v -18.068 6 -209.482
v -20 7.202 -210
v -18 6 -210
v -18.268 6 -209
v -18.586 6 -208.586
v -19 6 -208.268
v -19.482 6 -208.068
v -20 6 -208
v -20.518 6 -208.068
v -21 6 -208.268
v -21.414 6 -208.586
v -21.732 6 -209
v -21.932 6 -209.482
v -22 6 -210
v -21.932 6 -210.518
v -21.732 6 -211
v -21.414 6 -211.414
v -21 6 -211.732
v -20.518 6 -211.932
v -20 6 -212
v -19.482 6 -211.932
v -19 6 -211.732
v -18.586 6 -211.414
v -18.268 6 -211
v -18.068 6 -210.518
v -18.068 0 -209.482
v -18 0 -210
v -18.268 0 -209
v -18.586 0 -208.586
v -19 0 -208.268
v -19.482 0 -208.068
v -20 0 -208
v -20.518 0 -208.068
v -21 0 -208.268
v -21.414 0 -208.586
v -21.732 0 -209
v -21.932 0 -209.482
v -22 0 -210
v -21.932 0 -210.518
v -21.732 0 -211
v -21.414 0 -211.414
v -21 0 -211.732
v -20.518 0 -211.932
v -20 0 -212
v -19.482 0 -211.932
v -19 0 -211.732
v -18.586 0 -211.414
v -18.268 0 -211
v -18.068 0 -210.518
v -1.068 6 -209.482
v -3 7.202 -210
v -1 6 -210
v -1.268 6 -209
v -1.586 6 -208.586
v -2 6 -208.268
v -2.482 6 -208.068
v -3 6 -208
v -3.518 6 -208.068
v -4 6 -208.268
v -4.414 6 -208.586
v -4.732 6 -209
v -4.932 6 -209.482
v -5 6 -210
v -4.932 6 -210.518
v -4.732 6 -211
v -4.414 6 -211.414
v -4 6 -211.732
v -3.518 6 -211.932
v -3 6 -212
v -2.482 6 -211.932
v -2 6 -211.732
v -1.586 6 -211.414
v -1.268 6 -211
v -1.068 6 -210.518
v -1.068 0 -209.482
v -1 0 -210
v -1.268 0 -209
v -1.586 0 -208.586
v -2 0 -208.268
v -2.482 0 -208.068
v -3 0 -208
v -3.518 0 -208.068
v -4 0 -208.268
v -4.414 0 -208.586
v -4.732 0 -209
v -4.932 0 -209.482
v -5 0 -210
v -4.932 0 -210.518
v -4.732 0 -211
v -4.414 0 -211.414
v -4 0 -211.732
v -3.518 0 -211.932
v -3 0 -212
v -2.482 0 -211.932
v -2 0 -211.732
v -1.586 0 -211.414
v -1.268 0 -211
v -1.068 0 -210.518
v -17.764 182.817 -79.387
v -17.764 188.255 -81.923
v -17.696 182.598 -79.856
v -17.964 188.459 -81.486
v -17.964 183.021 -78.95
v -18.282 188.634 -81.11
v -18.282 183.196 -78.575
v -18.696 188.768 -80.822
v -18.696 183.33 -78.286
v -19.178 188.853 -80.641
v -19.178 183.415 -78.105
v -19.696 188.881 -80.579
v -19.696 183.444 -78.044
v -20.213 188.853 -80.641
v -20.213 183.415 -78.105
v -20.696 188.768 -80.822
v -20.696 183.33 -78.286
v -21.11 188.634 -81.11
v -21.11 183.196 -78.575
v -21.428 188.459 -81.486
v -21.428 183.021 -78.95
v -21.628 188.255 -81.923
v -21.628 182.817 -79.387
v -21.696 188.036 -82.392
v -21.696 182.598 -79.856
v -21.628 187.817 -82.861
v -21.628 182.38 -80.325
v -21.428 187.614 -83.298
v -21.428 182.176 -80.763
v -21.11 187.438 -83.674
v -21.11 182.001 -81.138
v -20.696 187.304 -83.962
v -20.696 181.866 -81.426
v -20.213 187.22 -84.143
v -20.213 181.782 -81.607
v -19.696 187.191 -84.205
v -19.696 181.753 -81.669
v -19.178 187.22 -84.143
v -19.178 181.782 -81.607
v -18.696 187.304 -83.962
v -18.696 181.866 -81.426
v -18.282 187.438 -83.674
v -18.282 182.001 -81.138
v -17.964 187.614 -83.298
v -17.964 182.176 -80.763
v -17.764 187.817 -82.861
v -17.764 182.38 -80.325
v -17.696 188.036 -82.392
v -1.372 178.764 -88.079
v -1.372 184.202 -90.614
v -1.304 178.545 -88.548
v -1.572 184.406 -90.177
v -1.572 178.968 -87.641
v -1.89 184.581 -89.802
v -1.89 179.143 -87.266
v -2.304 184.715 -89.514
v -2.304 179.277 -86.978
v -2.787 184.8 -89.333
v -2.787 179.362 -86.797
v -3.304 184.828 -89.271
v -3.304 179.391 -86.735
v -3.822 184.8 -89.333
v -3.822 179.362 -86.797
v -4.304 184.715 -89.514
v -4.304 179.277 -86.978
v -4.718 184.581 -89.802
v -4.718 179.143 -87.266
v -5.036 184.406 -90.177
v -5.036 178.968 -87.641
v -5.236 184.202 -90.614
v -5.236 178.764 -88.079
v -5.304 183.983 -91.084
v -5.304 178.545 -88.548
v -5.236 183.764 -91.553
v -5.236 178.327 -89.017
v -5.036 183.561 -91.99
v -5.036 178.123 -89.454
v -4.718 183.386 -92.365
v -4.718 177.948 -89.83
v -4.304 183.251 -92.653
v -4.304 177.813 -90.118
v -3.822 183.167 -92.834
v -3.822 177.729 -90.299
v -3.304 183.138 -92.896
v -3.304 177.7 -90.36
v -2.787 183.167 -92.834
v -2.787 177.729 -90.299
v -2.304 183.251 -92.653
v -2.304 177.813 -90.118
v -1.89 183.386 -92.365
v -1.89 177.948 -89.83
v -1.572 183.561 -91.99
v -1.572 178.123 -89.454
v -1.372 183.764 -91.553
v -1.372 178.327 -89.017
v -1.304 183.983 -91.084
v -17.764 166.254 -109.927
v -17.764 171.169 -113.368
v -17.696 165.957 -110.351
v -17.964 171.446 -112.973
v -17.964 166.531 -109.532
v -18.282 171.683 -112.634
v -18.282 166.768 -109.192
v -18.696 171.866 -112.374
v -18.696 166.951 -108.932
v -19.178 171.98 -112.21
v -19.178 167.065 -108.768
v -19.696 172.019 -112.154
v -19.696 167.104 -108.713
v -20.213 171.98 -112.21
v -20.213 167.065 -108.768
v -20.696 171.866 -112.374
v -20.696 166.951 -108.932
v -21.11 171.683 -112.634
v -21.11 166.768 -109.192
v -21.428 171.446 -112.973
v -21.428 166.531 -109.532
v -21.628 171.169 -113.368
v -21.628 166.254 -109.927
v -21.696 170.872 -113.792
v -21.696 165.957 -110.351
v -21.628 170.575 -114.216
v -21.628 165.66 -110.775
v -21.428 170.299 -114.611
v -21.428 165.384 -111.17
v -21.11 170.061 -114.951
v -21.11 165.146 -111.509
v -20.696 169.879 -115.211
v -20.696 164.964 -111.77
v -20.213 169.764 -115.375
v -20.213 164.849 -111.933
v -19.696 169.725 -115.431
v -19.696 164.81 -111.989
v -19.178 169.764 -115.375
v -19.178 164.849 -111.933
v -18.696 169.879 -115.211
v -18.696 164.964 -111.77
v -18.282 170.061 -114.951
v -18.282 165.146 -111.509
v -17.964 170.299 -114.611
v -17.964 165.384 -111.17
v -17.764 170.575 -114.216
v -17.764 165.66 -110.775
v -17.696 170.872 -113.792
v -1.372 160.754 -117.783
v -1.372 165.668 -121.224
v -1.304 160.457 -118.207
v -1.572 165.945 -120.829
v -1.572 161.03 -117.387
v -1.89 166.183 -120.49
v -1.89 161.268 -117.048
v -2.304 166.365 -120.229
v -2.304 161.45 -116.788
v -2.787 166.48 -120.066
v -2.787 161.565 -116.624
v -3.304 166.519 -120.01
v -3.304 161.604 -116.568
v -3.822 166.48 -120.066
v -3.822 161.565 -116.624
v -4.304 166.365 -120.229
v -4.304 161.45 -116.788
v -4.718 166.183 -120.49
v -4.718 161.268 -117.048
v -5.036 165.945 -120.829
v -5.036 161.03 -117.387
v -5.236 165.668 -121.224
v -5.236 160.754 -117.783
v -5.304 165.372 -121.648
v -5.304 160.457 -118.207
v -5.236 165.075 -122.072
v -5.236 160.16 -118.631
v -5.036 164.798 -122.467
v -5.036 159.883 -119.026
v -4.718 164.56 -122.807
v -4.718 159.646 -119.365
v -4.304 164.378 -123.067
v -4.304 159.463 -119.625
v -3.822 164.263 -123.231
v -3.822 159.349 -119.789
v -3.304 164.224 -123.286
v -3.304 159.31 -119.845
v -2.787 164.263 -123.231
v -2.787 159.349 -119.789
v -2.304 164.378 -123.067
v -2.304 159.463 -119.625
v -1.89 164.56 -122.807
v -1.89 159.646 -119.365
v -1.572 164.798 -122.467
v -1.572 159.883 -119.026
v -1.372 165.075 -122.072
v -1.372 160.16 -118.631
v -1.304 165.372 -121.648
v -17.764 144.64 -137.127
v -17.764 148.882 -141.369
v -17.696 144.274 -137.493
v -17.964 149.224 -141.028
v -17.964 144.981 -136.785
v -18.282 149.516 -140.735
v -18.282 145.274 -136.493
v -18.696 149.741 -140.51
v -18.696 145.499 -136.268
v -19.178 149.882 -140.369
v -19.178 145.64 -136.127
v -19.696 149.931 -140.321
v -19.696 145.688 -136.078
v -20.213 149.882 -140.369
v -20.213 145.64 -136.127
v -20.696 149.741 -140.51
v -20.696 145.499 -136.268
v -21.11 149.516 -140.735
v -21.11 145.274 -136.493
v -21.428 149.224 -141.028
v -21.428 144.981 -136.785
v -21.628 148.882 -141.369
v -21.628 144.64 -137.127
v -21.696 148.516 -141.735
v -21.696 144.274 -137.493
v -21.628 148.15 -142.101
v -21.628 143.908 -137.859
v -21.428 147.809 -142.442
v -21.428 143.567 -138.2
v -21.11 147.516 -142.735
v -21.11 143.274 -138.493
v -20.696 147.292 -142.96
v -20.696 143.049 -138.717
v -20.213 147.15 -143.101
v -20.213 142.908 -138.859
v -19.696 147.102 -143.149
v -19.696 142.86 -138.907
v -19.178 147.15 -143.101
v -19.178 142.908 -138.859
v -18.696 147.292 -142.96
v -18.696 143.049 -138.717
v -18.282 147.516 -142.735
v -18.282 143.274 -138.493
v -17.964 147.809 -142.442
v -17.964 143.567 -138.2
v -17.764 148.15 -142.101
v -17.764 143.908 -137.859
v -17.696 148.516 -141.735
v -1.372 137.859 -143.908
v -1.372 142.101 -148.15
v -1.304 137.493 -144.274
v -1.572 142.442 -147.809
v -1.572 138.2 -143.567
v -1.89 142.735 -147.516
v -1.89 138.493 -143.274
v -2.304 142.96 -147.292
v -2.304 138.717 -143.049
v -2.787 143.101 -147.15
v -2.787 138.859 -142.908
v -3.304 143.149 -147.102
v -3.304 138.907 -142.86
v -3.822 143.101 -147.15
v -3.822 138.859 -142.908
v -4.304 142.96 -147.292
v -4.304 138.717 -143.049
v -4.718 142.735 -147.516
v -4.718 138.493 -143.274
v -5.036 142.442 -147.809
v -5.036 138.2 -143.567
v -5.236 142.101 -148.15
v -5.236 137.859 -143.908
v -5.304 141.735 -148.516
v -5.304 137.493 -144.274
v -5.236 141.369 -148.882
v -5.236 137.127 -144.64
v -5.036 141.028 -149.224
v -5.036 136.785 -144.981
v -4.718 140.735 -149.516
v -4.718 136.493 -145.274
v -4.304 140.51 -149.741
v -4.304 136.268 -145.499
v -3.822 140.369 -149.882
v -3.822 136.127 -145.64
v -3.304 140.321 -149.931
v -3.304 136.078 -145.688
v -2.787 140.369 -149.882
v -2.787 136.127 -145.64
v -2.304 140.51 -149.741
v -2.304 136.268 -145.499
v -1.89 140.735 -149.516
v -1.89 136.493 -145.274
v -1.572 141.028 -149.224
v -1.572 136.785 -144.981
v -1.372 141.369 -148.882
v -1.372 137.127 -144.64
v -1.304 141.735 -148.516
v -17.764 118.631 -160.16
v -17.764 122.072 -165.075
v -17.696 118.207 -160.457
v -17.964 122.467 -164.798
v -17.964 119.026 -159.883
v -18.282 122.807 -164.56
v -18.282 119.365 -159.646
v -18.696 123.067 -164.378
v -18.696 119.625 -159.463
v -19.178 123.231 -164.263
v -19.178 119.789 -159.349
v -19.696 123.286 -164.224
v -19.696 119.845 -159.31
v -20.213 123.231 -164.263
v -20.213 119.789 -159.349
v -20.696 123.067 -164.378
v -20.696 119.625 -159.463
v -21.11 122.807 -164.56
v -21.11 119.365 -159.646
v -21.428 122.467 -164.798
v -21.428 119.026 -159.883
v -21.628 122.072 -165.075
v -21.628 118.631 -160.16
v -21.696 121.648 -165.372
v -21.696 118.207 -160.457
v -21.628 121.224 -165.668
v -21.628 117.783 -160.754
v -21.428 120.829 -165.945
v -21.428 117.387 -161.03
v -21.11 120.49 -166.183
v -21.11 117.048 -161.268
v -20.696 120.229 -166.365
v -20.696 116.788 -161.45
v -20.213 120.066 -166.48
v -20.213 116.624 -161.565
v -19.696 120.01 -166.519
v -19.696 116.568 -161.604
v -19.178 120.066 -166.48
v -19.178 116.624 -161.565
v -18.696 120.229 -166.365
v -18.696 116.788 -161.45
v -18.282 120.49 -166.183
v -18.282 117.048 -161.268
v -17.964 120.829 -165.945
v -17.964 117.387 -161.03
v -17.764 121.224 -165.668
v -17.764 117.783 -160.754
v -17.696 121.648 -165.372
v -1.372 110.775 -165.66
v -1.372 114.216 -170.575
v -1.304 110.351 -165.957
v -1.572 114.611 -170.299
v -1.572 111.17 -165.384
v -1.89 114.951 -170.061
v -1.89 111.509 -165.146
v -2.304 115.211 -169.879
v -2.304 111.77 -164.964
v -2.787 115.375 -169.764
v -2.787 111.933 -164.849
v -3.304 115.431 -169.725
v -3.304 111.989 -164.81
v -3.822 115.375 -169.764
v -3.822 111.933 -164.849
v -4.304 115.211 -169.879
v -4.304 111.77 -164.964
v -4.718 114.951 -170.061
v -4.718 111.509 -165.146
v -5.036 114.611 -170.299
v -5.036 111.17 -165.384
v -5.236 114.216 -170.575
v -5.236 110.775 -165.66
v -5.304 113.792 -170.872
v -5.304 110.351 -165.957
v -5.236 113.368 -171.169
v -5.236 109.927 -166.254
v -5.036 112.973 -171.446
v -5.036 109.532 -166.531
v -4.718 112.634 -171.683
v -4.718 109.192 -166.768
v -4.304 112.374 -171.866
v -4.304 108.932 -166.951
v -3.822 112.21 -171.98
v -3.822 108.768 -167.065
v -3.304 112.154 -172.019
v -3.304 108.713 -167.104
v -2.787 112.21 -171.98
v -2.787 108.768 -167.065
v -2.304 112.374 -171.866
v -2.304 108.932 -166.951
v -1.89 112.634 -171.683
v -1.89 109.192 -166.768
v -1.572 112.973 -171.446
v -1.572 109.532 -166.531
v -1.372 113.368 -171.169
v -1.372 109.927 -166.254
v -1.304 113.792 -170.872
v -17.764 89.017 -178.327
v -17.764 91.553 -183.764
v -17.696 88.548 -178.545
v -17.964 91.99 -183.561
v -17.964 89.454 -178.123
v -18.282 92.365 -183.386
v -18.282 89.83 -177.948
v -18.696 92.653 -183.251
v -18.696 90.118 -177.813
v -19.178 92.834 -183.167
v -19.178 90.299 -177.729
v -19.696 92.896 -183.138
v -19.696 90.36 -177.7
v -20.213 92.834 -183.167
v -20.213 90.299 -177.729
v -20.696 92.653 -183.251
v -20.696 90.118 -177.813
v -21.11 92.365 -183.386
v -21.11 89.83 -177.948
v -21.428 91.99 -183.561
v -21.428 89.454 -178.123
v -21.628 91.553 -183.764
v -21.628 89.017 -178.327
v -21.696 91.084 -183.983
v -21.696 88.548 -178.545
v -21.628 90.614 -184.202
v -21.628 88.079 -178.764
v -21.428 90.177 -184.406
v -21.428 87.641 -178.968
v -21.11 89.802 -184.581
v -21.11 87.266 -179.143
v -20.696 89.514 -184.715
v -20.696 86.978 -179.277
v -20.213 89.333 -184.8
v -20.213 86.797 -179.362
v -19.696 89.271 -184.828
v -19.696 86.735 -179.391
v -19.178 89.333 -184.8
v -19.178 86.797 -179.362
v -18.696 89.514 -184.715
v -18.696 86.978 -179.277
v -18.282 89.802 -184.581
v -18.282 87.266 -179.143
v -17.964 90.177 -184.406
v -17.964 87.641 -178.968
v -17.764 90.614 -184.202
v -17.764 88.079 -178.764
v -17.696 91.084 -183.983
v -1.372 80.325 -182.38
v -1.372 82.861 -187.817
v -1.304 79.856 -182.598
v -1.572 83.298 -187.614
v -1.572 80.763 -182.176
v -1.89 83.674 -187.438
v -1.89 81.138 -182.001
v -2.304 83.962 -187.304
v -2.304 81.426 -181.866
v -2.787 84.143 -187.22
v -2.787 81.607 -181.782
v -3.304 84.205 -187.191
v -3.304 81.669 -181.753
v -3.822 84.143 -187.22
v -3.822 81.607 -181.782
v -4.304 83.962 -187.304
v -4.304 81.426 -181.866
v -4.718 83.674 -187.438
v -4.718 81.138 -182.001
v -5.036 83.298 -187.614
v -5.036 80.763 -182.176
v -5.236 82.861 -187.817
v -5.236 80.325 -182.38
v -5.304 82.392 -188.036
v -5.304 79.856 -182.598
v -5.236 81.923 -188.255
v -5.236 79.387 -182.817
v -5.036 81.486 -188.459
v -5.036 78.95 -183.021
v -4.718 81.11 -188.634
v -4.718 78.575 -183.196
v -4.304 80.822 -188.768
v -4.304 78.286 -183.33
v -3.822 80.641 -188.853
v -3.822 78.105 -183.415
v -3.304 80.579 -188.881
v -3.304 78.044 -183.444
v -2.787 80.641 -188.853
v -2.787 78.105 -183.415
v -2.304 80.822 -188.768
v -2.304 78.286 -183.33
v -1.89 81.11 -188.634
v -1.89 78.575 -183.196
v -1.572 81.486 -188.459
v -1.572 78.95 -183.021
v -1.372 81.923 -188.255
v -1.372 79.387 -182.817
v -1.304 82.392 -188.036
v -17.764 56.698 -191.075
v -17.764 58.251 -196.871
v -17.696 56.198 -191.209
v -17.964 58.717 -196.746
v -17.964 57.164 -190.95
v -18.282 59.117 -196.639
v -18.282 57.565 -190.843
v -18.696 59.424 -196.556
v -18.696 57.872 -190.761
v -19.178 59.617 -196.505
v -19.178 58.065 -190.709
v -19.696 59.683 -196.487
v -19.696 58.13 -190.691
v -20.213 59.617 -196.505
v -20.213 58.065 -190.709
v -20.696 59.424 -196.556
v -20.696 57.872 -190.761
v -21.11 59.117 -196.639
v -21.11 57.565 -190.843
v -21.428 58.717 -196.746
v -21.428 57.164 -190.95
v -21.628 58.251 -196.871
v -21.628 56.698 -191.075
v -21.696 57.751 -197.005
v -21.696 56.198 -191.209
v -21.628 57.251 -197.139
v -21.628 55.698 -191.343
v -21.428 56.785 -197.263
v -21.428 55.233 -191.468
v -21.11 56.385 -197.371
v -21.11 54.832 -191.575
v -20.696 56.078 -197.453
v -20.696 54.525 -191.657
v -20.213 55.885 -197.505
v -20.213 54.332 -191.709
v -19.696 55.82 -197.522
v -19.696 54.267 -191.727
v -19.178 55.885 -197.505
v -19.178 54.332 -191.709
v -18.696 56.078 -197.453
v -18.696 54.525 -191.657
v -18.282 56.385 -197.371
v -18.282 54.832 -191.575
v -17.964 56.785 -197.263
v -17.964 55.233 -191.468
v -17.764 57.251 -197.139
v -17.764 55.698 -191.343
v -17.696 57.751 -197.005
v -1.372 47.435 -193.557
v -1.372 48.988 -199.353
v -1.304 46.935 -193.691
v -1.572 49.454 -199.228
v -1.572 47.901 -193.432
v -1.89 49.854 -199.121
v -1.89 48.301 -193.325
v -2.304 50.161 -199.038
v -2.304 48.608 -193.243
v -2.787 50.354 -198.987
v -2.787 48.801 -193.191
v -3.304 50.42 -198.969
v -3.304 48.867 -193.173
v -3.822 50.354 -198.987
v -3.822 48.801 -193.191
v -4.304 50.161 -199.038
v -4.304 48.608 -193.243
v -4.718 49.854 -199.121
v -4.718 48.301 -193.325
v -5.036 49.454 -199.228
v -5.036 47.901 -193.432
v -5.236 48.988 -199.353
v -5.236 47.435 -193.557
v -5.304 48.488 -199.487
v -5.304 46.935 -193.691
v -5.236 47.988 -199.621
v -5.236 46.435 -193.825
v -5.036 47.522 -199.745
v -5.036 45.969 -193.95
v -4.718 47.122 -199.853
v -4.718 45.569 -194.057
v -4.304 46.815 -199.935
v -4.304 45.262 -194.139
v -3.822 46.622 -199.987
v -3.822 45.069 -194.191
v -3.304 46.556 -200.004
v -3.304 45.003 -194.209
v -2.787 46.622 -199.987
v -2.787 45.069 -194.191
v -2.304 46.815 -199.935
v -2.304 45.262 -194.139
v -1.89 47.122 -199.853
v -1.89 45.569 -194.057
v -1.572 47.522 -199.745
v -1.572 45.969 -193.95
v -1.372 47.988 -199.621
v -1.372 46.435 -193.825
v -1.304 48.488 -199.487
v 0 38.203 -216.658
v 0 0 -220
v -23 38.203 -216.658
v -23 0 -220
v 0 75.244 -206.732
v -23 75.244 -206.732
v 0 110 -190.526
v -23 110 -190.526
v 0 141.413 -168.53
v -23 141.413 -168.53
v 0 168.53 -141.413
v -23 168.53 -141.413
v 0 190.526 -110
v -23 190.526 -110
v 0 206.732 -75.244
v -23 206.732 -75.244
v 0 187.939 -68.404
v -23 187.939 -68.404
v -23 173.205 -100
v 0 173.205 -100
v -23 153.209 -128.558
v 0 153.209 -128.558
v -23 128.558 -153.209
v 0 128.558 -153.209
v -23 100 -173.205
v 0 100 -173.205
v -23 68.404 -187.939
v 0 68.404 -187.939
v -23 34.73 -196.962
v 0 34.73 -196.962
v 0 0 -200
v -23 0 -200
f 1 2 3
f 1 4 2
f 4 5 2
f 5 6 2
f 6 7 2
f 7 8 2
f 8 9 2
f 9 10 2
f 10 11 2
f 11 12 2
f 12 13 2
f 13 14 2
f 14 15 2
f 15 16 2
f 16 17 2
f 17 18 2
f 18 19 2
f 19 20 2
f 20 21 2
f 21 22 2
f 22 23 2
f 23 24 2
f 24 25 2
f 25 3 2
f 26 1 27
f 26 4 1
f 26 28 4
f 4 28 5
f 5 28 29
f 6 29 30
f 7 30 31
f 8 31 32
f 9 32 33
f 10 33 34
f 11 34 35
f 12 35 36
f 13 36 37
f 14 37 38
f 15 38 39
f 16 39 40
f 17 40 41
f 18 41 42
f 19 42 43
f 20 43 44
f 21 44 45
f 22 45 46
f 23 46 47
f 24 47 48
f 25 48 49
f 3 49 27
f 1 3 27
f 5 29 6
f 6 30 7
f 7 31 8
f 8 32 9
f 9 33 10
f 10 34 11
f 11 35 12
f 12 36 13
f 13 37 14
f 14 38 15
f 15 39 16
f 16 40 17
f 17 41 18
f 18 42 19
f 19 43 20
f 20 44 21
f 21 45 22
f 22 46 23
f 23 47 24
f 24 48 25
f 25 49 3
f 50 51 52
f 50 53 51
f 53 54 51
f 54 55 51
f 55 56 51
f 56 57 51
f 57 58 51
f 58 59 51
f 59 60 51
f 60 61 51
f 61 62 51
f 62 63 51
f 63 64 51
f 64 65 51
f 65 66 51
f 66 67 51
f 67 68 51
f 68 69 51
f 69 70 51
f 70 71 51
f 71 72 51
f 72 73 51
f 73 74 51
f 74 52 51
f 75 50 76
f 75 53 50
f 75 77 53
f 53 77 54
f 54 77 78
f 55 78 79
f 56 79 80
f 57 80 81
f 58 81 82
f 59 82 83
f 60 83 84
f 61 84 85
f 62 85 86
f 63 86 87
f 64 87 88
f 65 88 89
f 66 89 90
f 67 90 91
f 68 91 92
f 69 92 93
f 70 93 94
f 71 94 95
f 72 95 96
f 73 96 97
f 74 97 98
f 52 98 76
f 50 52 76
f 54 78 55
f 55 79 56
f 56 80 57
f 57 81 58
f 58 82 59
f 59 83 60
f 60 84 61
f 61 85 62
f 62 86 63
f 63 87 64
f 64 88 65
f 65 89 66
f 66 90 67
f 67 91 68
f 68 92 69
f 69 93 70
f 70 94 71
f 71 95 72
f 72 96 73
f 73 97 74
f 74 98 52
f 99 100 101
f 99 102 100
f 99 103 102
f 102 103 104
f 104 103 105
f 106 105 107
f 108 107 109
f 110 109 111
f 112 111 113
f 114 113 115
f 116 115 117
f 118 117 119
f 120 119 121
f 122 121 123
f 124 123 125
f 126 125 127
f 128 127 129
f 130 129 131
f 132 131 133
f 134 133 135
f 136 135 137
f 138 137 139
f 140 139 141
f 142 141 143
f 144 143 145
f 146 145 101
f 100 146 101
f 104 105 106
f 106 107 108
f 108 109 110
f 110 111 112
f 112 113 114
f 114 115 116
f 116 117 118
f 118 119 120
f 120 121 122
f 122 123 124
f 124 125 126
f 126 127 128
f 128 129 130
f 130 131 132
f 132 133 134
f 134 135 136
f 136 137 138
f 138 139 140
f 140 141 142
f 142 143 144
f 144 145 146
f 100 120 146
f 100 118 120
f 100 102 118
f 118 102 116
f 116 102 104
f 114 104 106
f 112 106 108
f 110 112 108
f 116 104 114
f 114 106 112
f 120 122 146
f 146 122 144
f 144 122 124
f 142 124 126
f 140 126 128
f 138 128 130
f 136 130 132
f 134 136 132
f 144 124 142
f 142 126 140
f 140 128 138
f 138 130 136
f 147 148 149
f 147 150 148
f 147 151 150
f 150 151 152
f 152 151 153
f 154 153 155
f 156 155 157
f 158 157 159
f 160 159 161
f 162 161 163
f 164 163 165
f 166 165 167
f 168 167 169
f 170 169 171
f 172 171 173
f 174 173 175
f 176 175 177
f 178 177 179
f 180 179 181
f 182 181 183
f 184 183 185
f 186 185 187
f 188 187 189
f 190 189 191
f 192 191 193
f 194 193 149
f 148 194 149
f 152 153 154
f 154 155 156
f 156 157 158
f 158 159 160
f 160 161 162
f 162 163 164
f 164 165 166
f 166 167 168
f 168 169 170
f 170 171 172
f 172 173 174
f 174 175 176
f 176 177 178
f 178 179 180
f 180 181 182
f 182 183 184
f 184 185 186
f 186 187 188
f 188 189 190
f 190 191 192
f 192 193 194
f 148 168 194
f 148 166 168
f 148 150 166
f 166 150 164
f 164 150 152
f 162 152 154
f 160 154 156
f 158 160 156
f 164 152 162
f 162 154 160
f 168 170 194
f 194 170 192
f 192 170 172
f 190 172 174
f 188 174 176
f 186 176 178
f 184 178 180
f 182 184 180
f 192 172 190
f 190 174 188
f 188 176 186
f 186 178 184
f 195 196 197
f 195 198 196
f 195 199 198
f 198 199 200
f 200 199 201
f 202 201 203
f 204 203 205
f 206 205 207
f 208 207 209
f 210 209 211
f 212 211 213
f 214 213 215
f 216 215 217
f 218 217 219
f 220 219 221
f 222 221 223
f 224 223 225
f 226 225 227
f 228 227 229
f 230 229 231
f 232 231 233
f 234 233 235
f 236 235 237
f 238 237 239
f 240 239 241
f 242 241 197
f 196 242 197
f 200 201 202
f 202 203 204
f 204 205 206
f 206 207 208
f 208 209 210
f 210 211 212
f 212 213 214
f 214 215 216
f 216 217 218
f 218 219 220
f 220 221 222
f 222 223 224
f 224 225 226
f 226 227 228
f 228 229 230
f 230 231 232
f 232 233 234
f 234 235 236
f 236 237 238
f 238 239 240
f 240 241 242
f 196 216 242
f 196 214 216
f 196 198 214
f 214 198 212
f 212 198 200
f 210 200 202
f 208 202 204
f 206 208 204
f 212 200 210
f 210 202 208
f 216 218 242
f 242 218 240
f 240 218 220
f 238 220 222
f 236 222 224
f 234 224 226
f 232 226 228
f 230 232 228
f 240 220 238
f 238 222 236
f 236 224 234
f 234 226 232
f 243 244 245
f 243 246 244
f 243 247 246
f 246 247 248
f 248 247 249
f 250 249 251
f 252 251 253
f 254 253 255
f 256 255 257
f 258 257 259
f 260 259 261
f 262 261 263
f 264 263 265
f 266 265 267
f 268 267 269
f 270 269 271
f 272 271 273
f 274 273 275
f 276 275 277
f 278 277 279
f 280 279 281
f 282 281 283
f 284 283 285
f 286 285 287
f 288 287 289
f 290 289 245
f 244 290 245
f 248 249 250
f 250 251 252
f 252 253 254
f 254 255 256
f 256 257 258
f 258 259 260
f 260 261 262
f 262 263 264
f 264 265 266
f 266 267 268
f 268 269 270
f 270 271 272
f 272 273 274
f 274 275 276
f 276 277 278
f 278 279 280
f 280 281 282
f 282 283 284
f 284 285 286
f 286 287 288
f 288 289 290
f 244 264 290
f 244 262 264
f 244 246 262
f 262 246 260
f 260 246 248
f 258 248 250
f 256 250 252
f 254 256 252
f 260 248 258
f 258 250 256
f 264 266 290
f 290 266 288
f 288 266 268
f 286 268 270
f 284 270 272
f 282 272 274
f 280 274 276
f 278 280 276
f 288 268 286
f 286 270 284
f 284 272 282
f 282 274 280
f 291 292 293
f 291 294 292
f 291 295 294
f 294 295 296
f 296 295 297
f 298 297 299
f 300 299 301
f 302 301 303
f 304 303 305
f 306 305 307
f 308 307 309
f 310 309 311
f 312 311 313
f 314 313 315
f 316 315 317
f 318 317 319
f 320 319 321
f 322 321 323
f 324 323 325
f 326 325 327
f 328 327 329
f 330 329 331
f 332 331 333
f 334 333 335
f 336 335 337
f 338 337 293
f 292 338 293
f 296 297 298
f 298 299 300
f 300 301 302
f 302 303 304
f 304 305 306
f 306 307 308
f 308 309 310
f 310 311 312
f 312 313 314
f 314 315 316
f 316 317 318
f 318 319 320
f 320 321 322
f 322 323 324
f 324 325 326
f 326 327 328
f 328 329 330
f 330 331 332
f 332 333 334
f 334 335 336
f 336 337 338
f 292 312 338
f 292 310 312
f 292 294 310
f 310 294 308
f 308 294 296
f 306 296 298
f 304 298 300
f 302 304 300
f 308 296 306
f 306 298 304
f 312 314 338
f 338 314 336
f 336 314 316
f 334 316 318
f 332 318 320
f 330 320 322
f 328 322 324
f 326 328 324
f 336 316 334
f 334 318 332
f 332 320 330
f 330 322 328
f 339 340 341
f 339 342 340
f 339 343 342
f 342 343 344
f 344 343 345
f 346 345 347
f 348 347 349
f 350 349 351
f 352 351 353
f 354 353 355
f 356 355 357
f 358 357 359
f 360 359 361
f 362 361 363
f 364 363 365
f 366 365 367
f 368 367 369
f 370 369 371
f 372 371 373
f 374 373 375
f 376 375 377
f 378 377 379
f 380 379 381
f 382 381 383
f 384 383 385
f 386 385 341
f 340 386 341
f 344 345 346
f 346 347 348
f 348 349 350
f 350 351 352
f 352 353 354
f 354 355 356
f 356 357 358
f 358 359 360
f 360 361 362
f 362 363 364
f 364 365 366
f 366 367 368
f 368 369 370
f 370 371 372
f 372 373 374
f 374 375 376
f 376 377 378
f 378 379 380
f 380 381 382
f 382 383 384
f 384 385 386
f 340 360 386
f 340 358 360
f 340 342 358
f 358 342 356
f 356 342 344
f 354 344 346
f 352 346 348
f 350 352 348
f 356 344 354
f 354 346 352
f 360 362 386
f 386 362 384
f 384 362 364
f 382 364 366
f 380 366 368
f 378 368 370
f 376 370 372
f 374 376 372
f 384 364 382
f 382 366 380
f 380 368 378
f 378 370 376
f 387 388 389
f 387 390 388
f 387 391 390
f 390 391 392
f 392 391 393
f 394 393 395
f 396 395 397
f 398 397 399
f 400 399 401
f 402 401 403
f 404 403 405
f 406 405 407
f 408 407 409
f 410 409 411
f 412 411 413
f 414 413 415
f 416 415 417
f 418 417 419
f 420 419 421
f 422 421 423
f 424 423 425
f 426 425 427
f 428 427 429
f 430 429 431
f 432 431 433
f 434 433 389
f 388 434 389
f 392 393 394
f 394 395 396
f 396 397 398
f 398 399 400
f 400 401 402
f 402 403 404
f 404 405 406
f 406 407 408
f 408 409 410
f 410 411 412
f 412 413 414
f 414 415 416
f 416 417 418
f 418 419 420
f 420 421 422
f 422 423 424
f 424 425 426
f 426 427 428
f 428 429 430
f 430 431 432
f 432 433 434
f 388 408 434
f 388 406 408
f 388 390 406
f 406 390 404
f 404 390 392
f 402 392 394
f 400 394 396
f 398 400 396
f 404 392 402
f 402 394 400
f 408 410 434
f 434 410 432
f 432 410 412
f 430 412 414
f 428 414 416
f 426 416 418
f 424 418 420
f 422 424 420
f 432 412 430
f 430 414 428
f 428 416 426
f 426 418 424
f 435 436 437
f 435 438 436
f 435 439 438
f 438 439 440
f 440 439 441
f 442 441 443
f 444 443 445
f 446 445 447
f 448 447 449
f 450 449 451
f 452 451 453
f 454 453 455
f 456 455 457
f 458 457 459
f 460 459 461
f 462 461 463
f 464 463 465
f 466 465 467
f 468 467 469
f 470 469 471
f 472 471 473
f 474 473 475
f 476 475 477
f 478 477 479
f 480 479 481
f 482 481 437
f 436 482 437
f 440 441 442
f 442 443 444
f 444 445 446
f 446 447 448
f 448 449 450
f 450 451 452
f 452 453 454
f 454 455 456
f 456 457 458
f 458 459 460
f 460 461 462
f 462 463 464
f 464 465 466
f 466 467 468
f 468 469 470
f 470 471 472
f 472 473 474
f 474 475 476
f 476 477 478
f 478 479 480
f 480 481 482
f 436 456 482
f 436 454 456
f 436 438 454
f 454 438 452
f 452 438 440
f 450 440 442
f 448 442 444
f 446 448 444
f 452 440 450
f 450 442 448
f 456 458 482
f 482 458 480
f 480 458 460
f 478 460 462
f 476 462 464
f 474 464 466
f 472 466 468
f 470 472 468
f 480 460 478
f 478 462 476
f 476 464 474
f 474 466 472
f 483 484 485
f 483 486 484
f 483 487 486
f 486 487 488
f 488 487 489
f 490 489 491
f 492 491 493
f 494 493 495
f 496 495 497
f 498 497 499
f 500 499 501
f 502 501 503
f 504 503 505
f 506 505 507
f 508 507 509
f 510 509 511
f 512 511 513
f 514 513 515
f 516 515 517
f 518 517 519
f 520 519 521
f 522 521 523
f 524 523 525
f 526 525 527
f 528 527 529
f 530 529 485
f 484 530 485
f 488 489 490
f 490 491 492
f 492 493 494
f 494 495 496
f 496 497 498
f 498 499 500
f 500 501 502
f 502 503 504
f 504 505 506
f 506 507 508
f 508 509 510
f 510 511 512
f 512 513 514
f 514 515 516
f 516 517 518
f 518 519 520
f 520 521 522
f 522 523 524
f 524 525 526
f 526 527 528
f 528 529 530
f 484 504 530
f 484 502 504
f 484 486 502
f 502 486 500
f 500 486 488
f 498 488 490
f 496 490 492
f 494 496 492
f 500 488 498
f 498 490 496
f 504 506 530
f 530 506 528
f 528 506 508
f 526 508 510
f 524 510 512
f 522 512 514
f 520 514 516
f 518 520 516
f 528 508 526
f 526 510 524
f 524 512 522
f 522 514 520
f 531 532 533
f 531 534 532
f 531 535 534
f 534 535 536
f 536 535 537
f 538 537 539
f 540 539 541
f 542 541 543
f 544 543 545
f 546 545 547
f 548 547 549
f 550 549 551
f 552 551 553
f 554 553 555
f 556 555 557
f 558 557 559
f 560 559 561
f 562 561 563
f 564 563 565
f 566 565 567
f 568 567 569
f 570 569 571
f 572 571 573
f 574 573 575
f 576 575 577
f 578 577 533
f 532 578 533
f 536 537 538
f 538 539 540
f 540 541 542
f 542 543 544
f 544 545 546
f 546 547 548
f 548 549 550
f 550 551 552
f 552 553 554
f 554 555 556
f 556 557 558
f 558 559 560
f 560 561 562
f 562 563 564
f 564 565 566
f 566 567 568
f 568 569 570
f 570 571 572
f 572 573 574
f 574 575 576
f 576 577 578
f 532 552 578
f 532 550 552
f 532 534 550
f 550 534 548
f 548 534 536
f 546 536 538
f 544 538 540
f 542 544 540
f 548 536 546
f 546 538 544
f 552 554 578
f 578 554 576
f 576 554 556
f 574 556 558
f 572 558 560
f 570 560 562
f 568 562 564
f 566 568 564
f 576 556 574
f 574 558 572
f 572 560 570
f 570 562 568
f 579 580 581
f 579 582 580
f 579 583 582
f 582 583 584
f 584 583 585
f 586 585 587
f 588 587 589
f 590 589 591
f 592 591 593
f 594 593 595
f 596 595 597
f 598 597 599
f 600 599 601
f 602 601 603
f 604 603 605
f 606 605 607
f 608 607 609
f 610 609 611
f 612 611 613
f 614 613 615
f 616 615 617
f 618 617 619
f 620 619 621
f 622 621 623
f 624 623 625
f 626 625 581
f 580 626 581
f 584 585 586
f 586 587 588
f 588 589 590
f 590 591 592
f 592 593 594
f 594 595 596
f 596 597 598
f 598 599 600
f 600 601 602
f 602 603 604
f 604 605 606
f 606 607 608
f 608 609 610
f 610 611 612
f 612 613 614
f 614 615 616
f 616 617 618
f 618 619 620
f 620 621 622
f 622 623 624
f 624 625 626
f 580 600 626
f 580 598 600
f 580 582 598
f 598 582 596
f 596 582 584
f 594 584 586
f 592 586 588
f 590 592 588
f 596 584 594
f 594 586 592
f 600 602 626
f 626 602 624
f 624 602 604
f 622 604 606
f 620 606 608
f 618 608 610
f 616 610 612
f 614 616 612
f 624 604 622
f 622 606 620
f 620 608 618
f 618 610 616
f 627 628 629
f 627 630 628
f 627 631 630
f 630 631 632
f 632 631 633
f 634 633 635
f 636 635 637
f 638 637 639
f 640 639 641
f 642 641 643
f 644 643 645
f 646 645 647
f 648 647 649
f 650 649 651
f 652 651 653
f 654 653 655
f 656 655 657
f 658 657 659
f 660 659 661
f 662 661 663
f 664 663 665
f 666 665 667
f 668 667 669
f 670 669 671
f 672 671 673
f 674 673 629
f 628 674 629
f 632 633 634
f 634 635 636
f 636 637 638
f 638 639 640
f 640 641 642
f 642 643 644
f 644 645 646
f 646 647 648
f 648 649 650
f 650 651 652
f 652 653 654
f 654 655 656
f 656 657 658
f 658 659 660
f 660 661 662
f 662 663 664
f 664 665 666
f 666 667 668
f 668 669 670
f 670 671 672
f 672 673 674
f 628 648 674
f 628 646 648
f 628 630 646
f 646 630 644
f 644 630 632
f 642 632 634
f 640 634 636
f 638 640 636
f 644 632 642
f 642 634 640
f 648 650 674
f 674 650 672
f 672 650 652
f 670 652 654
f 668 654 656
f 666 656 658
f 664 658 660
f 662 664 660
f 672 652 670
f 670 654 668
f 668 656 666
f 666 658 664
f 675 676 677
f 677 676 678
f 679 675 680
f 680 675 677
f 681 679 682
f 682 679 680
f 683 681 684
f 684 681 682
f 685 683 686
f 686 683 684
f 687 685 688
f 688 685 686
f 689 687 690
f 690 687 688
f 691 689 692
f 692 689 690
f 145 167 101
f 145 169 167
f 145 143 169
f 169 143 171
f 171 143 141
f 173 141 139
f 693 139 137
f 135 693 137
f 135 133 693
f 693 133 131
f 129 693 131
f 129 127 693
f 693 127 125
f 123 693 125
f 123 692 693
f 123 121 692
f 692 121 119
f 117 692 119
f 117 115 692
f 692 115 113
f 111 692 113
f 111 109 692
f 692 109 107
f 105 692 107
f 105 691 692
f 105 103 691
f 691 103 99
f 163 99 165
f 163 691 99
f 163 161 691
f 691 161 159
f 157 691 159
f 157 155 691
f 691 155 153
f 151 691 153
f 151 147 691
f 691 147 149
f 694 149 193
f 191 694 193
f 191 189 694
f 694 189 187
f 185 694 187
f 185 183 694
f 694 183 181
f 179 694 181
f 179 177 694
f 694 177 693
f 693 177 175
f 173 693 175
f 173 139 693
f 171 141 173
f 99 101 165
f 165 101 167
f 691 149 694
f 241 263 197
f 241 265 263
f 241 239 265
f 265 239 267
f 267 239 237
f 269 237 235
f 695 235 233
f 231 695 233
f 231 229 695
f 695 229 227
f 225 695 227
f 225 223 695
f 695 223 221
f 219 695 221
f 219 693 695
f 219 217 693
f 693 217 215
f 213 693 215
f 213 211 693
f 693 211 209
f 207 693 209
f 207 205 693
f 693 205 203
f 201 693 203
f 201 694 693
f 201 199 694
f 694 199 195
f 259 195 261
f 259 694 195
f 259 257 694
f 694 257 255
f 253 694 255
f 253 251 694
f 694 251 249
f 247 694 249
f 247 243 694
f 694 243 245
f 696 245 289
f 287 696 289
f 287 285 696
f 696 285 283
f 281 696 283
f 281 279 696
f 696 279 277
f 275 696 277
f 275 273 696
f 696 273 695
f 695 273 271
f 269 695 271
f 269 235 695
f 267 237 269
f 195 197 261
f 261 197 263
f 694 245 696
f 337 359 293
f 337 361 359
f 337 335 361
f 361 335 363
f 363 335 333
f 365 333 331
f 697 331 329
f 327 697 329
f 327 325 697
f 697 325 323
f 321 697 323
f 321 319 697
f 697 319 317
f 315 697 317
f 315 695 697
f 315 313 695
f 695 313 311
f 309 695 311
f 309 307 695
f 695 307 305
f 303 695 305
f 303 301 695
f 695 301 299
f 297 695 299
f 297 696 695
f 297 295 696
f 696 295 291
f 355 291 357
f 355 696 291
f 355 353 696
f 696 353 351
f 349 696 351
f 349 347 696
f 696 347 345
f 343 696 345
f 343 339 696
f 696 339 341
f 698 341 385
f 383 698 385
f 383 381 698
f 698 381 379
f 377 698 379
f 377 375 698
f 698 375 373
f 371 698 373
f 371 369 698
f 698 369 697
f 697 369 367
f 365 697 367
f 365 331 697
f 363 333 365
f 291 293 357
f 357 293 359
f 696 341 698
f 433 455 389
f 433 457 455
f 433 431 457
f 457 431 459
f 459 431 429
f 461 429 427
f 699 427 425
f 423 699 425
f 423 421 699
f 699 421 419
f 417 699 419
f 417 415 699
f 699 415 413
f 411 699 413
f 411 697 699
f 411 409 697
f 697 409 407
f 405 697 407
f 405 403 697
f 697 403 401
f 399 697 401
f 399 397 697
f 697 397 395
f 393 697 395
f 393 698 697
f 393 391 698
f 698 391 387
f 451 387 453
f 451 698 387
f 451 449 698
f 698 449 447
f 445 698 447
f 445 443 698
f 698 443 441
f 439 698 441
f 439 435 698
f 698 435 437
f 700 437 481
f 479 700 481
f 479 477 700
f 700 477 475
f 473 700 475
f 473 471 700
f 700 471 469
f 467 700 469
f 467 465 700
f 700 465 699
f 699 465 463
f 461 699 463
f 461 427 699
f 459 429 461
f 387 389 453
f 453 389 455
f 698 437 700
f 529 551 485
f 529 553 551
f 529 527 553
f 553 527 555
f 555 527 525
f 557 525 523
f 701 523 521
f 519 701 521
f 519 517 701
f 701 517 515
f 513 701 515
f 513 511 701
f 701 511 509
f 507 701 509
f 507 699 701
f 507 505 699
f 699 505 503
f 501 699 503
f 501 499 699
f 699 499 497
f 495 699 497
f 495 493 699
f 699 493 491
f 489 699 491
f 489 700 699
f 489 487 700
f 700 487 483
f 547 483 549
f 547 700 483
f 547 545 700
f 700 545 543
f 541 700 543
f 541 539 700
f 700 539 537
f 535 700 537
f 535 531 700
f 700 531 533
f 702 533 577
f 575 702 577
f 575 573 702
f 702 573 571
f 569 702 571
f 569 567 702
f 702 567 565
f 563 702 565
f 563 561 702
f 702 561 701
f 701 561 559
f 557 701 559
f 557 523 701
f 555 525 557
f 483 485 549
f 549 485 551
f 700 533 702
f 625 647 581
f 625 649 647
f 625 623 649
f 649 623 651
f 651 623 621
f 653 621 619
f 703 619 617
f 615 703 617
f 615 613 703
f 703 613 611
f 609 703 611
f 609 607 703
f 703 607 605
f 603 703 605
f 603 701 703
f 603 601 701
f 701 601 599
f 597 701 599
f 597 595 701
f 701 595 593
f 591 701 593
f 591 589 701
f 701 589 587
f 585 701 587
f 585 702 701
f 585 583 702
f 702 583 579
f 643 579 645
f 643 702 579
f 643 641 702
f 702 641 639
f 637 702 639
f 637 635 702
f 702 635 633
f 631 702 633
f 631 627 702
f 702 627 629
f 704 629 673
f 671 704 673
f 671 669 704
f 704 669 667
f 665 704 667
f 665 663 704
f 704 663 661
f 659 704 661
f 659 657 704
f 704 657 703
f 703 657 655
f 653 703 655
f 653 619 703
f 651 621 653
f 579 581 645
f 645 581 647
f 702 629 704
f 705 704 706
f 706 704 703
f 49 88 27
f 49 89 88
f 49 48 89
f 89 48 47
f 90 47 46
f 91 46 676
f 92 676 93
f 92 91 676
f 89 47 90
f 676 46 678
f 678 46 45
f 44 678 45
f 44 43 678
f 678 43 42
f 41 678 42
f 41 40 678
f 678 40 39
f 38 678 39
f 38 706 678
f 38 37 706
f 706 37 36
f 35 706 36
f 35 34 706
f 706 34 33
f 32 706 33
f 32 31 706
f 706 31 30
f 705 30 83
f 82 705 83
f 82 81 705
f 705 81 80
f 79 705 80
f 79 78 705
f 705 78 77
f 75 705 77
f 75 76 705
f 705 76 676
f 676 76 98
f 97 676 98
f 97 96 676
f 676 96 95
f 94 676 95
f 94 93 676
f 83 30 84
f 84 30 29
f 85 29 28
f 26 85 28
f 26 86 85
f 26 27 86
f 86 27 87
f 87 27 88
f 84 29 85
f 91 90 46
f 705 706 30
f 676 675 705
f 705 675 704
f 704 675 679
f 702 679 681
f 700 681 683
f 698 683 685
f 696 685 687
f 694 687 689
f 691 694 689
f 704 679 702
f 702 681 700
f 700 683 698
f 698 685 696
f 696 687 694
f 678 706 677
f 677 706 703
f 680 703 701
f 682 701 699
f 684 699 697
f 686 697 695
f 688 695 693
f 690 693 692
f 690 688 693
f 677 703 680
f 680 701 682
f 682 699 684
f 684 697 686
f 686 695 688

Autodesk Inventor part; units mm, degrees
ref_plane "YZ Plane" through (0, 0, 0) normal (1, 0, 0) x (0, 1, 0)
ref_plane "XZ Plane" through (0, 0, 0) normal (0, 1, 0) x (-1, 0, 0)
ref_plane "XY Plane" through (0, 0, 0) normal (0, 0, 1) x (1, 0, 0)
sketch "Sketch1" plane through (0, 0, 0) normal (1, 0, 0) x (0, 1, 0)
  circle A0 centre (0, 0) radius 200 construction
  line L0 (0, 0) -> (293, 0) construction
  line L1 (0, 0) -> (315, -114.6506) construction
  line L2 (0, 0) -> (335.216, 0) construction
  line L3 (0, -200) -> (-34.7296, -196.9616)
  line L4 (-34.7296, -196.9616) -> (-68.404, -187.9385)
  line L5 (-68.404, -187.9385) -> (-100, -173.2051)
  line L6 (-100, -173.2051) -> (-128.5575, -153.2089)
  line L7 (-128.5575, -153.2089) -> (-153.2089, -128.5575)
  line L8 (-153.2089, -128.5575) -> (-173.2051, -100)
  line L9 (-173.2051, -100) -> (-187.9385, -68.404)
  line L10 (-187.9385, -68.404) -> (-196.9616, -34.7296)
  line L11 (-196.9616, -34.7296) -> (-200, 0)
  line L12 (-200, 0) -> (-196.9616, 34.7296)
  line L13 (-196.9616, 34.7296) -> (-187.9385, 68.404)
  line L14 (-187.9385, 68.404) -> (-173.2051, 100)
  line L15 (-173.2051, 100) -> (-153.2089, 128.5575)
  line L16 (-153.2089, 128.5575) -> (-128.5575, 153.2089)
  line L17 (-128.5575, 153.2089) -> (-100, 173.2051)
  line L18 (-100, 173.2051) -> (-68.404, 187.9385)
  line L19 (-68.404, 187.9385) -> (-34.7296, 196.9616)
  line L20 (-34.7296, 196.9616) -> (0, 200)
  line L21 (0, 200) -> (34.7296, 196.9616)
  line L22 (34.7296, 196.9616) -> (68.404, 187.9385)
  line L23 (68.404, 187.9385) -> (100, 173.2051)
  line L24 (100, 173.2051) -> (128.5575, 153.2089)
  line L25 (128.5575, 153.2089) -> (153.2089, 128.5575)
  line L26 (153.2089, 128.5575) -> (173.2051, 100)
  line L27 (173.2051, 100) -> (187.9385, 68.404)
  line L28 (187.9385, 68.404) -> (196.9616, 34.7296)
  line L29 (196.9616, 34.7296) -> (200, 0)
  line L30 (200, 0) -> (196.9616, -34.7296)
  line L31 (196.9616, -34.7296) -> (187.9385, -68.404)
  line L32 (187.9385, -68.404) -> (173.2051, -100)
  line L33 (173.2051, -100) -> (153.2089, -128.5575)
  line L34 (153.2089, -128.5575) -> (128.5575, -153.2089)
  line L35 (128.5575, -153.2089) -> (100, -173.2051)
  line L36 (100, -173.2051) -> (68.404, -187.9385)
  line L37 (68.404, -187.9385) -> (34.7296, -196.9616)
  line L38 (34.7296, -196.9616) -> (0, -200)
  circle A1 centre (0, 0) radius 220 construction
  line L39 (0, -220) -> (-38.2026, -216.6577)
  line L40 (-38.2026, -216.6577) -> (-75.2444, -206.7324)
  line L41 (-75.2444, -206.7324) -> (-110, -190.5256)
  line L42 (-110, -190.5256) -> (-141.4133, -168.5298)
  line L43 (-141.4133, -168.5298) -> (-168.5298, -141.4133)
  line L44 (-168.5298, -141.4133) -> (-190.5256, -110)
  line L45 (-190.5256, -110) -> (-206.7324, -75.2444)
  line L46 (-206.7324, -75.2444) -> (-216.6577, -38.2026)
  line L47 (-216.6577, -38.2026) -> (-220, 0)
  line L48 (-220, 0) -> (-216.6577, 38.2026)
  line L49 (-216.6577, 38.2026) -> (-206.7324, 75.2444)
  line L50 (-206.7324, 75.2444) -> (-190.5256, 110)
  line L51 (-190.5256, 110) -> (-168.5298, 141.4133)
  line L52 (-168.5298, 141.4133) -> (-141.4133, 168.5298)
  line L53 (-141.4133, 168.5298) -> (-110, 190.5256)
  line L54 (-110, 190.5256) -> (-75.2444, 206.7324)
  line L55 (-75.2444, 206.7324) -> (-38.2026, 216.6577)
  line L56 (-38.2026, 216.6577) -> (0, 220)
  line L57 (0, 220) -> (38.2026, 216.6577)
  line L58 (38.2026, 216.6577) -> (75.2444, 206.7324)
  line L59 (75.2444, 206.7324) -> (110, 190.5256)
  line L60 (110, 190.5256) -> (141.4133, 168.5298)
  line L61 (141.4133, 168.5298) -> (168.5298, 141.4133)
  line L62 (168.5298, 141.4133) -> (190.5256, 110)
  line L63 (190.5256, 110) -> (206.7324, 75.2444)
  line L64 (206.7324, 75.2444) -> (216.6577, 38.2026)
  line L65 (216.6577, 38.2026) -> (220, 0)
  line L66 (220, 0) -> (216.6577, -38.2026)
  line L67 (216.6577, -38.2026) -> (206.7324, -75.2444)
  line L68 (206.7324, -75.2444) -> (190.5256, -110)
  line L69 (190.5256, -110) -> (168.5298, -141.4133)
  line L70 (168.5298, -141.4133) -> (141.4133, -168.5298)
  line L71 (141.4133, -168.5298) -> (110, -190.5256)
  line L72 (110, -190.5256) -> (75.2444, -206.7324)
  line L73 (75.2444, -206.7324) -> (38.2026, -216.6577)
  line L74 (38.2026, -216.6577) -> (0, -220)
  line L75 (0, -200) -> (0, -220)
  line L76 (187.9385, -68.404) -> (206.7324, -75.2444)
  dimension "d0" = 400
  dimension "d2" = 440
  dimension "d1" = 20
extrude "Extrusion1" add sketch "Sketch1" against normal blind 23 contours L38 L37 L36 L35 L34 L33 L32 L76 L68 L69 L70 L71 L72 L73 L74 L75
sketch "Sketch2" plane through (-23, 34.7296, -196.9616) normal (0, -0.0871557, 0.9961947) x (1, 0, 0)
  line L0 (23, 0) -> (23, -34.8623)
  line L1 (23, 0) -> (0, 0)
  line L2 (0, -34.8623) -> (0, 0)
  line L3 (23, -34.8623) -> (0, -34.8623)
  line L4 (0, -33.9311) -> (23, -33.9311)
  line L5 (23, -33.9311) -> (23, -0.9311)
  line L6 (23, -0.9311) -> (0, -0.9311)
  line L7 (0, -0.9311) -> (0, -33.9311)
  line L8 (0, -33.9311) -> (23, -0.9311) construction
  line L9 (23, -33.9311) -> (0, -0.9311) construction
  point P0 (23, -17.4311)
  point P1 (11.5, -17.4311)
  point P2 (3.4356, -12.6296)
  point P3 (19.8273, -22.2197)
  dimension "d5" = 34.8623
  dimension "d6" = 23
  dimension "d7" = 23
  dimension "d8" = 33
  dimension "d10" = 3.4356
  dimension "d11" = 21.3015
  dimension "d12" = 19.8273
  dimension "d13" = 11.7114
sketch "Sketch9" plane through (-23.1315, 68.3978, -187.9402) normal (0, -0.258819, 0.9659258) x (1, 0, 0)
  line L0 (23, 0) -> (23, -34.8623)
  line L1 (23, 0) -> (0, 0)
  line L2 (0, -34.8623) -> (0, 0)
  line L3 (23, -34.8623) -> (0, -34.8623)
  line L4 (0, -33.9311) -> (23, -33.9311)
  line L5 (23, -33.9311) -> (23, -0.9311)
  line L6 (23, -0.9311) -> (0, -0.9311)
  line L7 (0, -0.9311) -> (0, -33.9311)
  line L8 (0, -33.9311) -> (23, -0.9311) construction
  line L9 (23, -33.9311) -> (0, -0.9311) construction
  point P0 (23, -17.4311)
  point P1 (11.5, -17.4311)
  point P2 (3.4356, -12.6296)
  point P3 (19.8273, -22.2197)
  dimension "d124" = 34.8623
  dimension "d125" = 23
  dimension "d116" = 23
  dimension "d117" = 33
  dimension "d115" = 3.4356
  dimension "d114" = 21.3015
  dimension "d113" = 19.8273
  dimension "d112" = 11.7114
hole "Hole8" at (-19.6959, 56.1985, -191.209) at (-3.3042, 46.9352, -193.6911) direction (0, 0.258819, -0.9659258) diameter 4 depth 6
sketch "Sketch10" plane through (-23.1315, 99.9942, -173.2078) normal (0, -0.4226183, 0.9063078) x (1, 0, 0)
  line L0 (23, 0) -> (23, -34.8623)
  line L1 (23, 0) -> (0, 0)
  line L2 (0, -34.8623) -> (0, 0)
  line L3 (23, -34.8623) -> (0, -34.8623)
  line L4 (0, -33.9311) -> (23, -33.9311)
  line L5 (23, -33.9311) -> (23, -0.9311)
  line L6 (23, -0.9311) -> (0, -0.9311)
  line L7 (0, -0.9311) -> (0, -33.9311)
  line L8 (0, -33.9311) -> (23, -0.9311) construction
  line L9 (23, -33.9311) -> (0, -0.9311) construction
  point P0 (23, -17.4311)
  point P1 (11.5, -17.4311)
  point P2 (3.4356, -12.6296)
  point P3 (19.8273, -22.2197)
  dimension "d139" = 34.8623
  dimension "d140" = 23
  dimension "d131" = 23
  dimension "d132" = 33
  dimension "d130" = 3.4356
  dimension "d129" = 21.3015
  dimension "d128" = 19.8273
  dimension "d127" = 11.7114
hole "Hole9" at (-19.6959, 88.5478, -178.5453) at (-3.3042, 79.8562, -182.5983) direction (0, 0.4226183, -0.9063078) diameter 4 depth 6
sketch "Sketch11" plane through (-23.1315, 128.5522, -153.2126) normal (0, -0.5735764, 0.819152) x (1, 0, 0)
  line L0 (23, 0) -> (23, -34.8623)
  line L1 (23, 0) -> (0, 0)
  line L2 (0, -34.8623) -> (0, 0)
  line L3 (23, -34.8623) -> (0, -34.8623)
  line L4 (0, -33.9311) -> (23, -33.9311)
  line L5 (23, -33.9311) -> (23, -0.9311)
  line L6 (23, -0.9311) -> (0, -0.9311)
  line L7 (0, -0.9311) -> (0, -33.9311)
  line L8 (0, -33.9311) -> (23, -0.9311) construction
  line L9 (23, -33.9311) -> (0, -0.9311) construction
  point P0 (23, -17.4311)
  point P1 (11.5, -17.4311)
  point P2 (3.4356, -12.6296)
  point P3 (19.8273, -22.2197)
  dimension "d154" = 34.8623
  dimension "d155" = 23
  dimension "d146" = 23
  dimension "d147" = 33
  dimension "d145" = 3.4356
  dimension "d144" = 21.3015
  dimension "d143" = 19.8273
  dimension "d142" = 11.7114
hole "Hole10" at (-19.6959, 118.2066, -160.4567) at (-3.3042, 110.3509, -165.9573) direction (0, 0.5735764, -0.819152) diameter 4 depth 6
sketch "Sketch12" plane through (-23.1315, 153.2043, -128.5621) normal (0, -0.7071068, 0.7071068) x (1, 0, 0)
  line L0 (23, 0) -> (23, -34.8623)
  line L1 (23, 0) -> (0, 0)
  line L2 (0, -34.8623) -> (0, 0)
  line L3 (23, -34.8623) -> (0, -34.8623)
  line L4 (0, -33.9311) -> (23, -33.9311)
  line L5 (23, -33.9311) -> (23, -0.9311)
  line L6 (23, -0.9311) -> (0, -0.9311)
  line L7 (0, -0.9311) -> (0, -33.9311)
  line L8 (0, -33.9311) -> (23, -0.9311) construction
  line L9 (23, -33.9311) -> (0, -0.9311) construction
  point P0 (23, -17.4311)
  point P1 (11.5, -17.4311)
  point P2 (3.4356, -12.6296)
  point P3 (19.8273, -22.2197)
  dimension "d169" = 34.8623
  dimension "d170" = 23
  dimension "d161" = 23
  dimension "d162" = 33
  dimension "d160" = 3.4356
  dimension "d159" = 21.3015
  dimension "d158" = 19.8273
  dimension "d157" = 11.7114
hole "Hole11" at (-19.6959, 144.2738, -137.4926) at (-3.3042, 137.4926, -144.2738) direction (0, 0.7071068, -0.7071068) diameter 4 depth 6
sketch "Sketch13" plane through (-23.1315, 173.2014, -100.0053) normal (0, -0.819152, 0.5735764) x (1, 0, 0)
  line L0 (23, 0) -> (23, -34.8623)
  line L1 (23, 0) -> (0, 0)
  line L2 (0, -34.8623) -> (0, 0)
  line L3 (23, -34.8623) -> (0, -34.8623)
  line L4 (0, -33.9311) -> (23, -33.9311)
  line L5 (23, -33.9311) -> (23, -0.9311)
  line L6 (23, -0.9311) -> (0, -0.9311)
  line L7 (0, -0.9311) -> (0, -33.9311)
  line L8 (0, -33.9311) -> (23, -0.9311) construction
  line L9 (23, -33.9311) -> (0, -0.9311) construction
  point P0 (23, -17.4311)
  point P1 (11.5, -17.4311)
  point P2 (3.4356, -12.6296)
  point P3 (19.8273, -22.2197)
  dimension "d184" = 34.8623
  dimension "d185" = 23
  dimension "d176" = 23
  dimension "d177" = 33
  dimension "d175" = 3.4356
  dimension "d174" = 21.3015
  dimension "d173" = 19.8273
  dimension "d172" = 11.7114
hole "Hole12" at (-19.6959, 165.9573, -110.3509) at (-3.3042, 160.4567, -118.2066) direction (0, 0.819152, -0.5735764) diameter 4 depth 6
sketch "Sketch14" plane through (-23.1315, 187.9358, -68.4099) normal (0, -0.9063078, 0.4226183) x (1, 0, 0)
  line L0 (23, 0) -> (23, -34.8623)
  line L1 (23, 0) -> (0, 0)
  line L2 (0, -34.8623) -> (0, 0)
  line L3 (23, -34.8623) -> (0, -34.8623)
  line L4 (0, -33.9311) -> (23, -33.9311)
  line L5 (23, -33.9311) -> (23, -0.9311)
  line L6 (23, -0.9311) -> (0, -0.9311)
  line L7 (0, -0.9311) -> (0, -33.9311)
  line L8 (0, -33.9311) -> (23, -0.9311) construction
  line L9 (23, -33.9311) -> (0, -0.9311) construction
  point P0 (23, -17.4311)
  point P1 (11.5, -17.4311)
  point P2 (3.4356, -12.6296)
  point P3 (19.8273, -22.2197)
  dimension "d199" = 34.8623
  dimension "d200" = 23
  dimension "d191" = 23
  dimension "d192" = 33
  dimension "d190" = 3.4356
  dimension "d189" = 21.3015
  dimension "d188" = 19.8273
  dimension "d187" = 11.7114
hole "Hole13" at (-19.6959, 182.5983, -79.8562) at (-3.3042, 178.5453, -88.5478) direction (0, 0.9063078, -0.4226183) diameter 4 depth 6
sketch "Sketch15" plane through (0, 0, -220) normal (0, -1, 0) x (1, 0, 0)
  line L0 (0, 20) -> (0, 0) projected
  line L1 (0, 20) -> (-23, 20) projected
  line L2 (-23, 0) -> (-23, 20) projected
  line L3 (0, 0) -> (-23, 0) projected
  point P0 (0, 220)
  point P1 (-3, 10)
  point P2 (-20, 10)
  dimension "d201" = 3
  dimension "d202" = 3
hole "Hole14" at (-20, 0, -210) at (-3, 0, -210) direction (0, 1, 0) diameter 4 depth 6 tip angle 118
equation "\"d116\" = d7"
equation "\"d117\" = d8"
equation "\"d115\" = d10"
equation "\"d114\" = d11"
equation "\"d113\" = d12"
equation "\"d112\" = d13"
equation "\"d123\" = d14"
equation "\"d122\" = d19"
equation "\"d131\" = d7"
equation "\"d132\" = d8"
equation "\"d130\" = d10"
equation "\"d129\" = d11"
equation "\"d128\" = d12"
equation "\"d127\" = d13"
equation "\"d138\" = d14"
equation "\"d137\" = d19"
equation "\"d146\" = d7"
equation "\"d147\" = d8"
equation "\"d145\" = d10"
equation "\"d144\" = d11"
equation "\"d143\" = d12"
equation "\"d142\" = d13"
equation "\"d153\" = d14"
equation "\"d152\" = d19"
equation "\"d161\" = d7"
equation "\"d162\" = d8"
equation "\"d160\" = d10"
equation "\"d159\" = d11"
equation "\"d158\" = d12"
equation "\"d157\" = d13"
equation "\"d168\" = d14"
equation "\"d167\" = d19"
equation "\"d176\" = d7"
equation "\"d177\" = d8"
equation "\"d175\" = d10"
equation "\"d174\" = d11"
equation "\"d173\" = d12"
equation "\"d172\" = d13"
equation "\"d183\" = d14"
equation "\"d182\" = d19"
equation "\"d191\" = d7"
equation "\"d192\" = d8"
equation "\"d190\" = d10"
equation "\"d189\" = d11"
equation "\"d188\" = d12"
equation "\"d187\" = d13"
equation "\"d198\" = d14"
equation "\"d197\" = d19"
equation "\"d202\" = d201"
equation "\"d14\" = 4"
equation "\"d19\" = 6"
properties part number "fourche_v2_sans_radiateurs"
